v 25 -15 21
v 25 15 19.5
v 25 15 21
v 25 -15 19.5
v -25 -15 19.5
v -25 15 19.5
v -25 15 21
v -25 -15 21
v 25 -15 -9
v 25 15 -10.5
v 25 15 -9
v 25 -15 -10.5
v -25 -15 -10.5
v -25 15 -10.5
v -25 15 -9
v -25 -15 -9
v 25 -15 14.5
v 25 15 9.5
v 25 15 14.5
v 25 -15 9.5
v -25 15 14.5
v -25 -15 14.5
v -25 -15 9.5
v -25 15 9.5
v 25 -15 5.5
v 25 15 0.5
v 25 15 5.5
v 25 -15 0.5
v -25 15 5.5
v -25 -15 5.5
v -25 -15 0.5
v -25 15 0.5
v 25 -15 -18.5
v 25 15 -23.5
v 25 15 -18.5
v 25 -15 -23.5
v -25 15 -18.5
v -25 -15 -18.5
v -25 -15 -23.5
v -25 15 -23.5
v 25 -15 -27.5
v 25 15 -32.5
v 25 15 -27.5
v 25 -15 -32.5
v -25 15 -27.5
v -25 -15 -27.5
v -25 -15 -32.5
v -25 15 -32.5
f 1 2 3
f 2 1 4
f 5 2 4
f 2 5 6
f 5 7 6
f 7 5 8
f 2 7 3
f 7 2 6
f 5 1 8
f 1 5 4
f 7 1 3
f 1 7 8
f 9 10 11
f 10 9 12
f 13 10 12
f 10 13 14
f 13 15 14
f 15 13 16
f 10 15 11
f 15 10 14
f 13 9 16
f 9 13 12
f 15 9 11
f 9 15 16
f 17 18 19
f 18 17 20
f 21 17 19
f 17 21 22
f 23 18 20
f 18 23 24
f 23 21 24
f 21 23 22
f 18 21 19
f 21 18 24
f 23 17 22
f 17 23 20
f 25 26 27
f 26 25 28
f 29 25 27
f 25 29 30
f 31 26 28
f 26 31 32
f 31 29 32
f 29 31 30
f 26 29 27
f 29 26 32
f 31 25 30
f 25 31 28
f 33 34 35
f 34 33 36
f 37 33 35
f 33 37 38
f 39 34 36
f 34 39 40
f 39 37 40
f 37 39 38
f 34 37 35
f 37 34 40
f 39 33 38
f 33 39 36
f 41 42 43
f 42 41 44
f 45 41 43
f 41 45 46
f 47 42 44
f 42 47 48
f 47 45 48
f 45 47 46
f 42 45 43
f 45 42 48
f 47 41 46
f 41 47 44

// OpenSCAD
// Dimensions for components
plate_length = 50; // Length of the rectangular plates
plate_width = 30;  // Width of the rectangular plates
plate_thickness = 5; // Thickness of the flat rectangular plates
beveled_plate_thickness = 3; // Thickness of the thin rectangular plates with beveled edges
bevel_size = 10; // Enhanced size of the bevel on the beveled plates for more pronounced edges
spacing = 4; // Increased spacing between the plates for better alignment

// Function to create a flat rectangular plate
module flat_rectangular_plate() {
    cube([plate_length, plate_width, plate_thickness], center = true);
}

// Function to create a thin rectangular plate with beveled edges
module thin_rectangular_plate_with_beveled_edges() {
    difference() {
        cube([plate_length, plate_width, beveled_plate_thickness], center = true);
        translate([-plate_length/2, -plate_width/2, 0])
            hull() {
                translate([0, 0, 0])
                    cube([bevel_size, plate_width, beveled_plate_thickness], center = false);
                translate([plate_length - bevel_size, 0, 0])
                    cube([bevel_size, plate_width, beveled_plate_thickness], center = false);
            }
    }
}

// Assembling the layers based on the graph_dict
module flexible_coupling() {
    // Layer 1: Thin rectangular plate with beveled edges
    translate([0, 0, plate_thickness * 2 + beveled_plate_thickness + spacing * 2])
        thin_rectangular_plate_with_beveled_edges();

    // Layer 2: Flat rectangular plate
    translate([0, 0, plate_thickness + beveled_plate_thickness + spacing])
        flat_rectangular_plate();

    // Layer 3: Flat rectangular plate
    translate([0, 0, beveled_plate_thickness])
        flat_rectangular_plate();

    // Layer 4: Thin rectangular plate with beveled edges
    translate([0, 0, -plate_thickness - spacing])
        thin_rectangular_plate_with_beveled_edges();

    // Layer 5: Flat rectangular plate
    translate([0, 0, -plate_thickness * 2 - beveled_plate_thickness - spacing * 2])
        flat_rectangular_plate();

    // Layer 6: Flat rectangular plate
    translate([0, 0, -plate_thickness * 3 - beveled_plate_thickness - spacing * 3])
        flat_rectangular_plate();
}

// Render the flexible coupling
flexible_coupling();
